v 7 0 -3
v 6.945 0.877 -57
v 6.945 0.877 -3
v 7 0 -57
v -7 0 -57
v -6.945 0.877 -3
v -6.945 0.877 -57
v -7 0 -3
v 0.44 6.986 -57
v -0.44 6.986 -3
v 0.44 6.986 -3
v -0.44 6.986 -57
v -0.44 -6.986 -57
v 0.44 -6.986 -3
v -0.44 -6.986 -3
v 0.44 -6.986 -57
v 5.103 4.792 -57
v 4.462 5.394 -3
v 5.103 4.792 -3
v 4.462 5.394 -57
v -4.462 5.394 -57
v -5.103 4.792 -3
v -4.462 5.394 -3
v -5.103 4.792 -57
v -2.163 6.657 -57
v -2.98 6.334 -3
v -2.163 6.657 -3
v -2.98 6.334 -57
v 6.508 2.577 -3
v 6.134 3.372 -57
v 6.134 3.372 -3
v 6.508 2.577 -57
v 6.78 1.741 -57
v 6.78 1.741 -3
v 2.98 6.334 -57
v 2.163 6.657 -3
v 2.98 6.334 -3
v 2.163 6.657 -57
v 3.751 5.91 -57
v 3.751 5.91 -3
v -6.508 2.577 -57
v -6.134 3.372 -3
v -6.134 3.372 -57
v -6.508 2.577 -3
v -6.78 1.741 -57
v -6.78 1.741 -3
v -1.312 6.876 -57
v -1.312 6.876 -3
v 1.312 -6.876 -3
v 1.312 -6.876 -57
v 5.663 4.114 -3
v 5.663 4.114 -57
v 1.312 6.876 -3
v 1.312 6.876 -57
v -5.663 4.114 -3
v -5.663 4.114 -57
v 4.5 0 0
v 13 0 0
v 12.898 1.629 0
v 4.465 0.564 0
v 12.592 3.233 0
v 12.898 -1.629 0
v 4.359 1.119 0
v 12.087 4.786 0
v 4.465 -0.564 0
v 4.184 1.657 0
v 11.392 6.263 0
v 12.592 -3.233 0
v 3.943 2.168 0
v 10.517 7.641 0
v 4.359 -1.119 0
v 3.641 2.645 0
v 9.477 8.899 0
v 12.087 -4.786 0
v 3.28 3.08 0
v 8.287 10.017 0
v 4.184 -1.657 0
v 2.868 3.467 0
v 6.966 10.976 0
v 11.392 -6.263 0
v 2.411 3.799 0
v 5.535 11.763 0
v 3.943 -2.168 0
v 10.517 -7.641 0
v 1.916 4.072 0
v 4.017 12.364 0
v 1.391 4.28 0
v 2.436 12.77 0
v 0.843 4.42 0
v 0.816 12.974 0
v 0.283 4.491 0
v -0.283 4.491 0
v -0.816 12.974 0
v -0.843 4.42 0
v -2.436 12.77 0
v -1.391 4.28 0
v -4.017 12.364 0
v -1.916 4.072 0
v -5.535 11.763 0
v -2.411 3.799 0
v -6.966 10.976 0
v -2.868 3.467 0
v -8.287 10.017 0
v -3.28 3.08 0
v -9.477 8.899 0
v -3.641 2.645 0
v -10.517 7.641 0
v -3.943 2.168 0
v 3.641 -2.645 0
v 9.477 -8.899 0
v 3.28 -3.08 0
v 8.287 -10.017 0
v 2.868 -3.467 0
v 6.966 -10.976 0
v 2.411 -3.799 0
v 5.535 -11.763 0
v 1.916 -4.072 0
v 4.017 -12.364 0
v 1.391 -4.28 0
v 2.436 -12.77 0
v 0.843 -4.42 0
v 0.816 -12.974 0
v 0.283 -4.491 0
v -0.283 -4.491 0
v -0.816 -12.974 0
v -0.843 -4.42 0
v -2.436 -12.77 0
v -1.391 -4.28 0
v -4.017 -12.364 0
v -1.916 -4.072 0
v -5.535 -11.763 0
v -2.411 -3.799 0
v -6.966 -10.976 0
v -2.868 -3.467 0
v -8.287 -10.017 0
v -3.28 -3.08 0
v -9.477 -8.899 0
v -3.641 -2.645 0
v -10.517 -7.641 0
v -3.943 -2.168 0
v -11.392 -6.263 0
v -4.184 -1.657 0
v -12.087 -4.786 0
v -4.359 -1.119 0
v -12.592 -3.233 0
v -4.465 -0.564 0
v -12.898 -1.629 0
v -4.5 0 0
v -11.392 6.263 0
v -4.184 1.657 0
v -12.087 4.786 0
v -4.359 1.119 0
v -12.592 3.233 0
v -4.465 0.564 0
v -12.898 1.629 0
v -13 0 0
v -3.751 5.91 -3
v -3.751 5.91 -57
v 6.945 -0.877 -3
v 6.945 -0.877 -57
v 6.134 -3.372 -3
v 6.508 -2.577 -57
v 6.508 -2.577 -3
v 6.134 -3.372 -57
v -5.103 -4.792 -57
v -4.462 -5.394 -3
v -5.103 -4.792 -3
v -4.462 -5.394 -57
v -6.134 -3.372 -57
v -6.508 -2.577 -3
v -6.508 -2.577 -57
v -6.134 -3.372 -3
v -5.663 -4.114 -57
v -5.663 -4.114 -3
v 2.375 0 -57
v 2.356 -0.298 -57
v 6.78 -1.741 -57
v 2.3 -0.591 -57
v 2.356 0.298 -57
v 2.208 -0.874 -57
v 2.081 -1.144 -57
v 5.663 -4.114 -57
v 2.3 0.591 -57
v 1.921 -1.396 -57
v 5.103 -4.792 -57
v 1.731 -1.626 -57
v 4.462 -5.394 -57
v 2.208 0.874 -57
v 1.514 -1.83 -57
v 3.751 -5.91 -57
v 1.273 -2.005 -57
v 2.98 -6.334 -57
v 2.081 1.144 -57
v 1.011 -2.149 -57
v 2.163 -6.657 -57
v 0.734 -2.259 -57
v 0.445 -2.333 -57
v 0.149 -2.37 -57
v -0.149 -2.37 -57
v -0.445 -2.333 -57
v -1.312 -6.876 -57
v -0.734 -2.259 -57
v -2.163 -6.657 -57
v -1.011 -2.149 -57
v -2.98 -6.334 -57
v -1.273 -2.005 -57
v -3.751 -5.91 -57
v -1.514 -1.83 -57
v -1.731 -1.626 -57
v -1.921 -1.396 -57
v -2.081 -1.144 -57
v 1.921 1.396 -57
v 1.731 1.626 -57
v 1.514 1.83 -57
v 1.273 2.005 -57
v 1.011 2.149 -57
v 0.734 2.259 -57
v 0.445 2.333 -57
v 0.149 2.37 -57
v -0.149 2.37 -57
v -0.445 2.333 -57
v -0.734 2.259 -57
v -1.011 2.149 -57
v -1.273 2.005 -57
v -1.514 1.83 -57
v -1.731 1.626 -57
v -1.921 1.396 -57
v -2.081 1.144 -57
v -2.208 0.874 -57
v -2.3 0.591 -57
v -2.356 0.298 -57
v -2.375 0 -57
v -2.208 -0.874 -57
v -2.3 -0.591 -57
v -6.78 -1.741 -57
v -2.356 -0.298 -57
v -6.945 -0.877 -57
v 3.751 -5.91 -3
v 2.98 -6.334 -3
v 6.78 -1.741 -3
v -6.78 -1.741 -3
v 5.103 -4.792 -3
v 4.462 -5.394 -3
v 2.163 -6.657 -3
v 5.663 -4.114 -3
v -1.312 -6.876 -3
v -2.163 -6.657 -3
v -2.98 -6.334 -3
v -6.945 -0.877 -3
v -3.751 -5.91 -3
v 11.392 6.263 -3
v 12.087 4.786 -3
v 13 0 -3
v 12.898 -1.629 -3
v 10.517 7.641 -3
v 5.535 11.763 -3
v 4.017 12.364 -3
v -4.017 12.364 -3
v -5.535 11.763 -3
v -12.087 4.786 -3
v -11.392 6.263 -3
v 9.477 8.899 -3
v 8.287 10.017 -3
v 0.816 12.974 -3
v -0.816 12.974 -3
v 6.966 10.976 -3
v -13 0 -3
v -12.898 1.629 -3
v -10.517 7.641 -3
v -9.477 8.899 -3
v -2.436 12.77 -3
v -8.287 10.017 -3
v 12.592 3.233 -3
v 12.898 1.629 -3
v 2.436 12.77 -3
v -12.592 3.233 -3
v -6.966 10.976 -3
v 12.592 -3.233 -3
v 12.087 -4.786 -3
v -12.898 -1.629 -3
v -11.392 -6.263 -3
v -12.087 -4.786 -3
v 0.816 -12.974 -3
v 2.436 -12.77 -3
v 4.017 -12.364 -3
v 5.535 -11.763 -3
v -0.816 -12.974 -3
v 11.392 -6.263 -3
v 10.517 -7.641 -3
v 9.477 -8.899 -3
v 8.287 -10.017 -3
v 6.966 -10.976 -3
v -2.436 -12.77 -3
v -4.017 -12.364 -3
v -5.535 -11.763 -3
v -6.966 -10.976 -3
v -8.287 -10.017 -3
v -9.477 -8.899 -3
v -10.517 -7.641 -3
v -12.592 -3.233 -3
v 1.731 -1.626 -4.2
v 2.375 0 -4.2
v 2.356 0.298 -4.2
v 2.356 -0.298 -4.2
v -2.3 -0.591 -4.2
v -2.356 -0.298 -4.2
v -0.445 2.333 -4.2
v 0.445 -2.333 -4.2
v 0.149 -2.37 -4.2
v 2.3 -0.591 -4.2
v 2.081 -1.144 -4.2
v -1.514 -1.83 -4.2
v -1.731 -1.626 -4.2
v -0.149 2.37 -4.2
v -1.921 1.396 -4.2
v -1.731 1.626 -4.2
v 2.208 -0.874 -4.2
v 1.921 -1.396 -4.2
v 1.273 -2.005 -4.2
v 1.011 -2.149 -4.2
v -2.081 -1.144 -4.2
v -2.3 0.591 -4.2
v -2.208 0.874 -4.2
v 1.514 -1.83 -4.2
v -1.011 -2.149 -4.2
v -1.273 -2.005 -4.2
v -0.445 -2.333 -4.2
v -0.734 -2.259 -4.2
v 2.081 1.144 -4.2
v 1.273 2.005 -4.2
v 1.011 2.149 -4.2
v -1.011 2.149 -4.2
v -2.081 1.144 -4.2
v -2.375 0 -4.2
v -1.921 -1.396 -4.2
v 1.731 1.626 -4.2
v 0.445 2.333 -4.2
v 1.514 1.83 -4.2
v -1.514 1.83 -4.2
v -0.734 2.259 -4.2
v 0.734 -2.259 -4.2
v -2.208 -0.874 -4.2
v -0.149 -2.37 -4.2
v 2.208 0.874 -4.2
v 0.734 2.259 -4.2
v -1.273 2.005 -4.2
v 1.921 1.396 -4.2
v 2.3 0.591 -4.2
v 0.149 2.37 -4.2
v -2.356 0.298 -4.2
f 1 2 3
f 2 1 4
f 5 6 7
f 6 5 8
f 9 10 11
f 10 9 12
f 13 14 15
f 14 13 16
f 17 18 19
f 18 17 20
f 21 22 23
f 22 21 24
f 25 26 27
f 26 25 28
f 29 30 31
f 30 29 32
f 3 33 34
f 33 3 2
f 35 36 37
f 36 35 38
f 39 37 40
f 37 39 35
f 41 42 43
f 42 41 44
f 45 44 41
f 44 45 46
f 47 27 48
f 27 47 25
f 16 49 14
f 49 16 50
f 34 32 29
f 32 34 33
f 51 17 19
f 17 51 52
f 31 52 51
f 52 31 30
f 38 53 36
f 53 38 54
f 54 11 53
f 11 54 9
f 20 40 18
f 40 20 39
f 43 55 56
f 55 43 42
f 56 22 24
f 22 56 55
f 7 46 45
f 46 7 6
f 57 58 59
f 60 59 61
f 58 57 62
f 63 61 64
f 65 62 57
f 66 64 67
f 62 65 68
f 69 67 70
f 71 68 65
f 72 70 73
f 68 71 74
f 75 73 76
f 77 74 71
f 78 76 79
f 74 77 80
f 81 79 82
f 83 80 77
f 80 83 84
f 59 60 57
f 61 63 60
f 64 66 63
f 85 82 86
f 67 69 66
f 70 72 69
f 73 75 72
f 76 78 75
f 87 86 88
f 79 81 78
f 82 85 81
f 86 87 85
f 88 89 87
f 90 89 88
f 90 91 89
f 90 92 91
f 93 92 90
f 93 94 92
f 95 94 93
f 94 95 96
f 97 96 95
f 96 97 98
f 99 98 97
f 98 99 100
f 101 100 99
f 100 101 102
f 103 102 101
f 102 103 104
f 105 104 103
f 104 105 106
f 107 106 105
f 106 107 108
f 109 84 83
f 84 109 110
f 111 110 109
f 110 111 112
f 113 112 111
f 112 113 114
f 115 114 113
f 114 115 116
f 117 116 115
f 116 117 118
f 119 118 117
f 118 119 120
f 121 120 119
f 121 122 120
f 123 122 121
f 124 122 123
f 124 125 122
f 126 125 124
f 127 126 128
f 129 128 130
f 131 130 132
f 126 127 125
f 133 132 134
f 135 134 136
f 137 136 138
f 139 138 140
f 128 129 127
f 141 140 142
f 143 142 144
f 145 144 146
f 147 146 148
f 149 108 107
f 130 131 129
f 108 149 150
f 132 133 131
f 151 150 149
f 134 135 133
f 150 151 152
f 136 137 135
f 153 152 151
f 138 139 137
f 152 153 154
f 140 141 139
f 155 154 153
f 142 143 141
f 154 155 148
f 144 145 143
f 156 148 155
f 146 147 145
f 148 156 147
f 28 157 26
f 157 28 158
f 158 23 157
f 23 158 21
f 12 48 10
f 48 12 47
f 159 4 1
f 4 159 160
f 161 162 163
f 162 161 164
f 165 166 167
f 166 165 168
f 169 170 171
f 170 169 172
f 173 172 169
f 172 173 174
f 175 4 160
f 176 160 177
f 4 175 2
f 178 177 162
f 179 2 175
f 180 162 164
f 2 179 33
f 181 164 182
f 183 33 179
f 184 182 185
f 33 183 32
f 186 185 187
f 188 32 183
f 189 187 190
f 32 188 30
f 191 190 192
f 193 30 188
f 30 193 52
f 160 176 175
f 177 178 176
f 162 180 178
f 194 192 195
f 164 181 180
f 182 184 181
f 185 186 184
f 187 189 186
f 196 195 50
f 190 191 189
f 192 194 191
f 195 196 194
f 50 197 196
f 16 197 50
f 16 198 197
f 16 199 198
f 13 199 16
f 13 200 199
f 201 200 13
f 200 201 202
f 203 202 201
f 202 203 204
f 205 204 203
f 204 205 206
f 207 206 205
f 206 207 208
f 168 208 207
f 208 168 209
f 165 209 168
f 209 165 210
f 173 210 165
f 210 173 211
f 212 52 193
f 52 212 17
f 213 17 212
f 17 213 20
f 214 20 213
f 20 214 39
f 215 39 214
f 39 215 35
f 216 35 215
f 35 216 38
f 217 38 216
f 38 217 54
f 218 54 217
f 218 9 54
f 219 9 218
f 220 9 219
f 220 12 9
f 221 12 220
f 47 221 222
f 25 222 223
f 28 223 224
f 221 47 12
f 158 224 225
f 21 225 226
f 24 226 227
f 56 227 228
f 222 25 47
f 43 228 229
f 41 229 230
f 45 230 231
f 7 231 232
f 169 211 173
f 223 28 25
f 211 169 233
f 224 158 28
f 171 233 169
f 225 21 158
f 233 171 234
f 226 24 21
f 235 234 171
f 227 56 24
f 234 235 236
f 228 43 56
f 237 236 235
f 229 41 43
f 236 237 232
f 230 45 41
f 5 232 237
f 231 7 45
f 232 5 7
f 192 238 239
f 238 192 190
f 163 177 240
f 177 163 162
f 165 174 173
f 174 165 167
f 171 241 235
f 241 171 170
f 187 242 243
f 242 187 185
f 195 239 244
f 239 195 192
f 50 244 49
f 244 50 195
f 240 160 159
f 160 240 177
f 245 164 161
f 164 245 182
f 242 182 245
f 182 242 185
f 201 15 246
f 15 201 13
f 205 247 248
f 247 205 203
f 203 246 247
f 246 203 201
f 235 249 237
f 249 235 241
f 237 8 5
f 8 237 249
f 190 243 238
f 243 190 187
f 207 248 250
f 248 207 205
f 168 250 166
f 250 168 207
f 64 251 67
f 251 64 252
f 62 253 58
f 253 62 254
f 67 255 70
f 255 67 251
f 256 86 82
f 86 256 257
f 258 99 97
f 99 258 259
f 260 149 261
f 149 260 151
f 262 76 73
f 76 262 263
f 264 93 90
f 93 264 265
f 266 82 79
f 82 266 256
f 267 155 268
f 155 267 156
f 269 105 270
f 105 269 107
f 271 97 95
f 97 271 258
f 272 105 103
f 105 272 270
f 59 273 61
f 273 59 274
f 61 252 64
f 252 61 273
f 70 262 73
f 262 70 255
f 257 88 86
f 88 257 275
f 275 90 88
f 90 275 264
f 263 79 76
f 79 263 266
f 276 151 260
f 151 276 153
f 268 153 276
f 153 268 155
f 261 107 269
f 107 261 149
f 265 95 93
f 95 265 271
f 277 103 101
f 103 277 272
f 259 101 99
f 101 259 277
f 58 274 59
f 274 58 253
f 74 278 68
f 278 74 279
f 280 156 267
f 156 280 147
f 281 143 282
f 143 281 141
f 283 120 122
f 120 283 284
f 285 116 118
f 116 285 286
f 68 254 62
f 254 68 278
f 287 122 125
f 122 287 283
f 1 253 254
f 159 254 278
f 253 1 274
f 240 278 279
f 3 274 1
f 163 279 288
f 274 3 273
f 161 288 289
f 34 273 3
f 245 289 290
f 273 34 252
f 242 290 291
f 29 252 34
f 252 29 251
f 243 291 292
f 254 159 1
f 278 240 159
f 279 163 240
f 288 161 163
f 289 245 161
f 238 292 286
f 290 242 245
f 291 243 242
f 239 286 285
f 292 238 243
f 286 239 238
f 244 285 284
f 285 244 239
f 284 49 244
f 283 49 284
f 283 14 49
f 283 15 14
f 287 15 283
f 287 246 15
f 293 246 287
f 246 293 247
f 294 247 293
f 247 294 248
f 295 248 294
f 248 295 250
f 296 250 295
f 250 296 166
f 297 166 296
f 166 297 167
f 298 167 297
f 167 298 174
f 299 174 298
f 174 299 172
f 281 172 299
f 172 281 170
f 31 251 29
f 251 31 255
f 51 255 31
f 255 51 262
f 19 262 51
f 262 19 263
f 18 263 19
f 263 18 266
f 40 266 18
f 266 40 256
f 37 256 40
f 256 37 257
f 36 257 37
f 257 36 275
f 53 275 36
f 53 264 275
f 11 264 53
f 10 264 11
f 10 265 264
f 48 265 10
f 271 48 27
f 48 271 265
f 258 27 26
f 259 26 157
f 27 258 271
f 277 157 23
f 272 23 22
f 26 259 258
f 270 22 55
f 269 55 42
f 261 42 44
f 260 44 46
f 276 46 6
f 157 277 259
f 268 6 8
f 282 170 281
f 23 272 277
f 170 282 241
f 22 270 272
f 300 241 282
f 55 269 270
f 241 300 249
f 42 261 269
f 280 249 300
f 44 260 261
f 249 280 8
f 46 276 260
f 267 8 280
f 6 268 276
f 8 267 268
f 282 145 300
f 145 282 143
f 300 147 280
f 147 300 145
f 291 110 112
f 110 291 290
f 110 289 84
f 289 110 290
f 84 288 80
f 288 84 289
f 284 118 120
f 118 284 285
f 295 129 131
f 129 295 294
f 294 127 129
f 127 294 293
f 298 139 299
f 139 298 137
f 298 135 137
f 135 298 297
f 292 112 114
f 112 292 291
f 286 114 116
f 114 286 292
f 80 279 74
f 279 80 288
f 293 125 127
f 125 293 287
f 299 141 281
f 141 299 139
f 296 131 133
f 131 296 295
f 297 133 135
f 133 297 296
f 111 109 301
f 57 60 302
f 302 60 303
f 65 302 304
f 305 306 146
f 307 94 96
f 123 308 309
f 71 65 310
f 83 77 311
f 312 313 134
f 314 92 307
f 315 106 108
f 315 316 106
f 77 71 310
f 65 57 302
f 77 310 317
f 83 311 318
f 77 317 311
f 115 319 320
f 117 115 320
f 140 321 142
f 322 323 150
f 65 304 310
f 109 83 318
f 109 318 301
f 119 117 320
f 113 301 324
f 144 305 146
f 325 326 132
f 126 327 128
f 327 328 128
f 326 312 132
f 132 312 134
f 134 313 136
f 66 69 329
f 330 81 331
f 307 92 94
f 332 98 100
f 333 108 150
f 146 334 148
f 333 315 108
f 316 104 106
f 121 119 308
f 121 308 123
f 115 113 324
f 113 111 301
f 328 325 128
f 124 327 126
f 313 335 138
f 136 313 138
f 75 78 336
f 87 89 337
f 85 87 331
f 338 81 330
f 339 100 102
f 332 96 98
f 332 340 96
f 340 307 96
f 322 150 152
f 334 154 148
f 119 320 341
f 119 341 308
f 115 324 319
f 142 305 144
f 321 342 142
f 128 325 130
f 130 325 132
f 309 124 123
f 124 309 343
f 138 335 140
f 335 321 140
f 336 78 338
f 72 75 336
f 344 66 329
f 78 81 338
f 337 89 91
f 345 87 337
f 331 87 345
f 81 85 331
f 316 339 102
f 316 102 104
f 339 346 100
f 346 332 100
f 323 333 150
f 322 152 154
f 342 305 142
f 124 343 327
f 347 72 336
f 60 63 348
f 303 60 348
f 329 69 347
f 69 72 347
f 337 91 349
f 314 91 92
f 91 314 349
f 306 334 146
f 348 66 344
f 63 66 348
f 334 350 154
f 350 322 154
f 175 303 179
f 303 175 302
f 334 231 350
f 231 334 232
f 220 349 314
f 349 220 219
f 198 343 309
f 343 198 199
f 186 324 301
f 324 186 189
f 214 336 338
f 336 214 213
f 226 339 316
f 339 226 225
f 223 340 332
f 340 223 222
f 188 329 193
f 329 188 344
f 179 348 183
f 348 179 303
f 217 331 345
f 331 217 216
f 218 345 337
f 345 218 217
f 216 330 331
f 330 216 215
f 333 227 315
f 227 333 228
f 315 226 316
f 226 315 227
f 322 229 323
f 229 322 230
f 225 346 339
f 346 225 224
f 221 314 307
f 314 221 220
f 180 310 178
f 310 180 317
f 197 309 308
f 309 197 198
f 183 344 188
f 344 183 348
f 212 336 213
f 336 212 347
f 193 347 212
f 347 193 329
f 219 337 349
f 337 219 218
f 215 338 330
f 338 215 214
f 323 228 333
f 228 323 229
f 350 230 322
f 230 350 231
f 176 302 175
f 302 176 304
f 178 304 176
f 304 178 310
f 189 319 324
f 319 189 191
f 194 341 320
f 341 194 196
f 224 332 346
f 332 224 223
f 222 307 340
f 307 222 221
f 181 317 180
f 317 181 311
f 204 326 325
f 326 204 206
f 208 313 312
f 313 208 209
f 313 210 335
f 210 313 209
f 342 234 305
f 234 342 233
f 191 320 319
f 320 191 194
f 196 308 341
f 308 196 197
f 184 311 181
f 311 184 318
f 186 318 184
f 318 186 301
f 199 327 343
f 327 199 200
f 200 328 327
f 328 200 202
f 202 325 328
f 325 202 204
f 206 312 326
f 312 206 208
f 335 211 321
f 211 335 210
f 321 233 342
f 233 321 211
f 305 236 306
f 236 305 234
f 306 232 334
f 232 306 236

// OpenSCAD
$fn = 50;


difference() {
	union() {
		translate(v = [0, 0, -57.0000000000]) {
			cylinder(h = 57, r = 7.0000000000);
		}
		translate(v = [0, 0, -3.0000000000]) {
			cylinder(h = 3, r = 13.0000000000);
		}
	}
	union() {
		translate(v = [0, 0, 0]) {
			rotate(a = [0, 0, 0]) {
				difference() {
					union() {
						#translate(v = [0, 0, -57.0000000000]) {
							cylinder(h = 57, r = 2.2500000000);
						}
						#translate(v = [0, 0, -4.2000000000]) {
							cylinder(h = 4.2000000000, r1 = 2.3750000000, r2 = 4.5000000000);
						}
						#translate(v = [0, 0, -57.0000000000]) {
							cylinder(h = 57, r = 2.3750000000);
						}
						#translate(v = [0, 0, -57.0000000000]) {
							cylinder(h = 57, r = 2.2500000000);
						}
					}
					union();
				}
			}
		}
	}
}
